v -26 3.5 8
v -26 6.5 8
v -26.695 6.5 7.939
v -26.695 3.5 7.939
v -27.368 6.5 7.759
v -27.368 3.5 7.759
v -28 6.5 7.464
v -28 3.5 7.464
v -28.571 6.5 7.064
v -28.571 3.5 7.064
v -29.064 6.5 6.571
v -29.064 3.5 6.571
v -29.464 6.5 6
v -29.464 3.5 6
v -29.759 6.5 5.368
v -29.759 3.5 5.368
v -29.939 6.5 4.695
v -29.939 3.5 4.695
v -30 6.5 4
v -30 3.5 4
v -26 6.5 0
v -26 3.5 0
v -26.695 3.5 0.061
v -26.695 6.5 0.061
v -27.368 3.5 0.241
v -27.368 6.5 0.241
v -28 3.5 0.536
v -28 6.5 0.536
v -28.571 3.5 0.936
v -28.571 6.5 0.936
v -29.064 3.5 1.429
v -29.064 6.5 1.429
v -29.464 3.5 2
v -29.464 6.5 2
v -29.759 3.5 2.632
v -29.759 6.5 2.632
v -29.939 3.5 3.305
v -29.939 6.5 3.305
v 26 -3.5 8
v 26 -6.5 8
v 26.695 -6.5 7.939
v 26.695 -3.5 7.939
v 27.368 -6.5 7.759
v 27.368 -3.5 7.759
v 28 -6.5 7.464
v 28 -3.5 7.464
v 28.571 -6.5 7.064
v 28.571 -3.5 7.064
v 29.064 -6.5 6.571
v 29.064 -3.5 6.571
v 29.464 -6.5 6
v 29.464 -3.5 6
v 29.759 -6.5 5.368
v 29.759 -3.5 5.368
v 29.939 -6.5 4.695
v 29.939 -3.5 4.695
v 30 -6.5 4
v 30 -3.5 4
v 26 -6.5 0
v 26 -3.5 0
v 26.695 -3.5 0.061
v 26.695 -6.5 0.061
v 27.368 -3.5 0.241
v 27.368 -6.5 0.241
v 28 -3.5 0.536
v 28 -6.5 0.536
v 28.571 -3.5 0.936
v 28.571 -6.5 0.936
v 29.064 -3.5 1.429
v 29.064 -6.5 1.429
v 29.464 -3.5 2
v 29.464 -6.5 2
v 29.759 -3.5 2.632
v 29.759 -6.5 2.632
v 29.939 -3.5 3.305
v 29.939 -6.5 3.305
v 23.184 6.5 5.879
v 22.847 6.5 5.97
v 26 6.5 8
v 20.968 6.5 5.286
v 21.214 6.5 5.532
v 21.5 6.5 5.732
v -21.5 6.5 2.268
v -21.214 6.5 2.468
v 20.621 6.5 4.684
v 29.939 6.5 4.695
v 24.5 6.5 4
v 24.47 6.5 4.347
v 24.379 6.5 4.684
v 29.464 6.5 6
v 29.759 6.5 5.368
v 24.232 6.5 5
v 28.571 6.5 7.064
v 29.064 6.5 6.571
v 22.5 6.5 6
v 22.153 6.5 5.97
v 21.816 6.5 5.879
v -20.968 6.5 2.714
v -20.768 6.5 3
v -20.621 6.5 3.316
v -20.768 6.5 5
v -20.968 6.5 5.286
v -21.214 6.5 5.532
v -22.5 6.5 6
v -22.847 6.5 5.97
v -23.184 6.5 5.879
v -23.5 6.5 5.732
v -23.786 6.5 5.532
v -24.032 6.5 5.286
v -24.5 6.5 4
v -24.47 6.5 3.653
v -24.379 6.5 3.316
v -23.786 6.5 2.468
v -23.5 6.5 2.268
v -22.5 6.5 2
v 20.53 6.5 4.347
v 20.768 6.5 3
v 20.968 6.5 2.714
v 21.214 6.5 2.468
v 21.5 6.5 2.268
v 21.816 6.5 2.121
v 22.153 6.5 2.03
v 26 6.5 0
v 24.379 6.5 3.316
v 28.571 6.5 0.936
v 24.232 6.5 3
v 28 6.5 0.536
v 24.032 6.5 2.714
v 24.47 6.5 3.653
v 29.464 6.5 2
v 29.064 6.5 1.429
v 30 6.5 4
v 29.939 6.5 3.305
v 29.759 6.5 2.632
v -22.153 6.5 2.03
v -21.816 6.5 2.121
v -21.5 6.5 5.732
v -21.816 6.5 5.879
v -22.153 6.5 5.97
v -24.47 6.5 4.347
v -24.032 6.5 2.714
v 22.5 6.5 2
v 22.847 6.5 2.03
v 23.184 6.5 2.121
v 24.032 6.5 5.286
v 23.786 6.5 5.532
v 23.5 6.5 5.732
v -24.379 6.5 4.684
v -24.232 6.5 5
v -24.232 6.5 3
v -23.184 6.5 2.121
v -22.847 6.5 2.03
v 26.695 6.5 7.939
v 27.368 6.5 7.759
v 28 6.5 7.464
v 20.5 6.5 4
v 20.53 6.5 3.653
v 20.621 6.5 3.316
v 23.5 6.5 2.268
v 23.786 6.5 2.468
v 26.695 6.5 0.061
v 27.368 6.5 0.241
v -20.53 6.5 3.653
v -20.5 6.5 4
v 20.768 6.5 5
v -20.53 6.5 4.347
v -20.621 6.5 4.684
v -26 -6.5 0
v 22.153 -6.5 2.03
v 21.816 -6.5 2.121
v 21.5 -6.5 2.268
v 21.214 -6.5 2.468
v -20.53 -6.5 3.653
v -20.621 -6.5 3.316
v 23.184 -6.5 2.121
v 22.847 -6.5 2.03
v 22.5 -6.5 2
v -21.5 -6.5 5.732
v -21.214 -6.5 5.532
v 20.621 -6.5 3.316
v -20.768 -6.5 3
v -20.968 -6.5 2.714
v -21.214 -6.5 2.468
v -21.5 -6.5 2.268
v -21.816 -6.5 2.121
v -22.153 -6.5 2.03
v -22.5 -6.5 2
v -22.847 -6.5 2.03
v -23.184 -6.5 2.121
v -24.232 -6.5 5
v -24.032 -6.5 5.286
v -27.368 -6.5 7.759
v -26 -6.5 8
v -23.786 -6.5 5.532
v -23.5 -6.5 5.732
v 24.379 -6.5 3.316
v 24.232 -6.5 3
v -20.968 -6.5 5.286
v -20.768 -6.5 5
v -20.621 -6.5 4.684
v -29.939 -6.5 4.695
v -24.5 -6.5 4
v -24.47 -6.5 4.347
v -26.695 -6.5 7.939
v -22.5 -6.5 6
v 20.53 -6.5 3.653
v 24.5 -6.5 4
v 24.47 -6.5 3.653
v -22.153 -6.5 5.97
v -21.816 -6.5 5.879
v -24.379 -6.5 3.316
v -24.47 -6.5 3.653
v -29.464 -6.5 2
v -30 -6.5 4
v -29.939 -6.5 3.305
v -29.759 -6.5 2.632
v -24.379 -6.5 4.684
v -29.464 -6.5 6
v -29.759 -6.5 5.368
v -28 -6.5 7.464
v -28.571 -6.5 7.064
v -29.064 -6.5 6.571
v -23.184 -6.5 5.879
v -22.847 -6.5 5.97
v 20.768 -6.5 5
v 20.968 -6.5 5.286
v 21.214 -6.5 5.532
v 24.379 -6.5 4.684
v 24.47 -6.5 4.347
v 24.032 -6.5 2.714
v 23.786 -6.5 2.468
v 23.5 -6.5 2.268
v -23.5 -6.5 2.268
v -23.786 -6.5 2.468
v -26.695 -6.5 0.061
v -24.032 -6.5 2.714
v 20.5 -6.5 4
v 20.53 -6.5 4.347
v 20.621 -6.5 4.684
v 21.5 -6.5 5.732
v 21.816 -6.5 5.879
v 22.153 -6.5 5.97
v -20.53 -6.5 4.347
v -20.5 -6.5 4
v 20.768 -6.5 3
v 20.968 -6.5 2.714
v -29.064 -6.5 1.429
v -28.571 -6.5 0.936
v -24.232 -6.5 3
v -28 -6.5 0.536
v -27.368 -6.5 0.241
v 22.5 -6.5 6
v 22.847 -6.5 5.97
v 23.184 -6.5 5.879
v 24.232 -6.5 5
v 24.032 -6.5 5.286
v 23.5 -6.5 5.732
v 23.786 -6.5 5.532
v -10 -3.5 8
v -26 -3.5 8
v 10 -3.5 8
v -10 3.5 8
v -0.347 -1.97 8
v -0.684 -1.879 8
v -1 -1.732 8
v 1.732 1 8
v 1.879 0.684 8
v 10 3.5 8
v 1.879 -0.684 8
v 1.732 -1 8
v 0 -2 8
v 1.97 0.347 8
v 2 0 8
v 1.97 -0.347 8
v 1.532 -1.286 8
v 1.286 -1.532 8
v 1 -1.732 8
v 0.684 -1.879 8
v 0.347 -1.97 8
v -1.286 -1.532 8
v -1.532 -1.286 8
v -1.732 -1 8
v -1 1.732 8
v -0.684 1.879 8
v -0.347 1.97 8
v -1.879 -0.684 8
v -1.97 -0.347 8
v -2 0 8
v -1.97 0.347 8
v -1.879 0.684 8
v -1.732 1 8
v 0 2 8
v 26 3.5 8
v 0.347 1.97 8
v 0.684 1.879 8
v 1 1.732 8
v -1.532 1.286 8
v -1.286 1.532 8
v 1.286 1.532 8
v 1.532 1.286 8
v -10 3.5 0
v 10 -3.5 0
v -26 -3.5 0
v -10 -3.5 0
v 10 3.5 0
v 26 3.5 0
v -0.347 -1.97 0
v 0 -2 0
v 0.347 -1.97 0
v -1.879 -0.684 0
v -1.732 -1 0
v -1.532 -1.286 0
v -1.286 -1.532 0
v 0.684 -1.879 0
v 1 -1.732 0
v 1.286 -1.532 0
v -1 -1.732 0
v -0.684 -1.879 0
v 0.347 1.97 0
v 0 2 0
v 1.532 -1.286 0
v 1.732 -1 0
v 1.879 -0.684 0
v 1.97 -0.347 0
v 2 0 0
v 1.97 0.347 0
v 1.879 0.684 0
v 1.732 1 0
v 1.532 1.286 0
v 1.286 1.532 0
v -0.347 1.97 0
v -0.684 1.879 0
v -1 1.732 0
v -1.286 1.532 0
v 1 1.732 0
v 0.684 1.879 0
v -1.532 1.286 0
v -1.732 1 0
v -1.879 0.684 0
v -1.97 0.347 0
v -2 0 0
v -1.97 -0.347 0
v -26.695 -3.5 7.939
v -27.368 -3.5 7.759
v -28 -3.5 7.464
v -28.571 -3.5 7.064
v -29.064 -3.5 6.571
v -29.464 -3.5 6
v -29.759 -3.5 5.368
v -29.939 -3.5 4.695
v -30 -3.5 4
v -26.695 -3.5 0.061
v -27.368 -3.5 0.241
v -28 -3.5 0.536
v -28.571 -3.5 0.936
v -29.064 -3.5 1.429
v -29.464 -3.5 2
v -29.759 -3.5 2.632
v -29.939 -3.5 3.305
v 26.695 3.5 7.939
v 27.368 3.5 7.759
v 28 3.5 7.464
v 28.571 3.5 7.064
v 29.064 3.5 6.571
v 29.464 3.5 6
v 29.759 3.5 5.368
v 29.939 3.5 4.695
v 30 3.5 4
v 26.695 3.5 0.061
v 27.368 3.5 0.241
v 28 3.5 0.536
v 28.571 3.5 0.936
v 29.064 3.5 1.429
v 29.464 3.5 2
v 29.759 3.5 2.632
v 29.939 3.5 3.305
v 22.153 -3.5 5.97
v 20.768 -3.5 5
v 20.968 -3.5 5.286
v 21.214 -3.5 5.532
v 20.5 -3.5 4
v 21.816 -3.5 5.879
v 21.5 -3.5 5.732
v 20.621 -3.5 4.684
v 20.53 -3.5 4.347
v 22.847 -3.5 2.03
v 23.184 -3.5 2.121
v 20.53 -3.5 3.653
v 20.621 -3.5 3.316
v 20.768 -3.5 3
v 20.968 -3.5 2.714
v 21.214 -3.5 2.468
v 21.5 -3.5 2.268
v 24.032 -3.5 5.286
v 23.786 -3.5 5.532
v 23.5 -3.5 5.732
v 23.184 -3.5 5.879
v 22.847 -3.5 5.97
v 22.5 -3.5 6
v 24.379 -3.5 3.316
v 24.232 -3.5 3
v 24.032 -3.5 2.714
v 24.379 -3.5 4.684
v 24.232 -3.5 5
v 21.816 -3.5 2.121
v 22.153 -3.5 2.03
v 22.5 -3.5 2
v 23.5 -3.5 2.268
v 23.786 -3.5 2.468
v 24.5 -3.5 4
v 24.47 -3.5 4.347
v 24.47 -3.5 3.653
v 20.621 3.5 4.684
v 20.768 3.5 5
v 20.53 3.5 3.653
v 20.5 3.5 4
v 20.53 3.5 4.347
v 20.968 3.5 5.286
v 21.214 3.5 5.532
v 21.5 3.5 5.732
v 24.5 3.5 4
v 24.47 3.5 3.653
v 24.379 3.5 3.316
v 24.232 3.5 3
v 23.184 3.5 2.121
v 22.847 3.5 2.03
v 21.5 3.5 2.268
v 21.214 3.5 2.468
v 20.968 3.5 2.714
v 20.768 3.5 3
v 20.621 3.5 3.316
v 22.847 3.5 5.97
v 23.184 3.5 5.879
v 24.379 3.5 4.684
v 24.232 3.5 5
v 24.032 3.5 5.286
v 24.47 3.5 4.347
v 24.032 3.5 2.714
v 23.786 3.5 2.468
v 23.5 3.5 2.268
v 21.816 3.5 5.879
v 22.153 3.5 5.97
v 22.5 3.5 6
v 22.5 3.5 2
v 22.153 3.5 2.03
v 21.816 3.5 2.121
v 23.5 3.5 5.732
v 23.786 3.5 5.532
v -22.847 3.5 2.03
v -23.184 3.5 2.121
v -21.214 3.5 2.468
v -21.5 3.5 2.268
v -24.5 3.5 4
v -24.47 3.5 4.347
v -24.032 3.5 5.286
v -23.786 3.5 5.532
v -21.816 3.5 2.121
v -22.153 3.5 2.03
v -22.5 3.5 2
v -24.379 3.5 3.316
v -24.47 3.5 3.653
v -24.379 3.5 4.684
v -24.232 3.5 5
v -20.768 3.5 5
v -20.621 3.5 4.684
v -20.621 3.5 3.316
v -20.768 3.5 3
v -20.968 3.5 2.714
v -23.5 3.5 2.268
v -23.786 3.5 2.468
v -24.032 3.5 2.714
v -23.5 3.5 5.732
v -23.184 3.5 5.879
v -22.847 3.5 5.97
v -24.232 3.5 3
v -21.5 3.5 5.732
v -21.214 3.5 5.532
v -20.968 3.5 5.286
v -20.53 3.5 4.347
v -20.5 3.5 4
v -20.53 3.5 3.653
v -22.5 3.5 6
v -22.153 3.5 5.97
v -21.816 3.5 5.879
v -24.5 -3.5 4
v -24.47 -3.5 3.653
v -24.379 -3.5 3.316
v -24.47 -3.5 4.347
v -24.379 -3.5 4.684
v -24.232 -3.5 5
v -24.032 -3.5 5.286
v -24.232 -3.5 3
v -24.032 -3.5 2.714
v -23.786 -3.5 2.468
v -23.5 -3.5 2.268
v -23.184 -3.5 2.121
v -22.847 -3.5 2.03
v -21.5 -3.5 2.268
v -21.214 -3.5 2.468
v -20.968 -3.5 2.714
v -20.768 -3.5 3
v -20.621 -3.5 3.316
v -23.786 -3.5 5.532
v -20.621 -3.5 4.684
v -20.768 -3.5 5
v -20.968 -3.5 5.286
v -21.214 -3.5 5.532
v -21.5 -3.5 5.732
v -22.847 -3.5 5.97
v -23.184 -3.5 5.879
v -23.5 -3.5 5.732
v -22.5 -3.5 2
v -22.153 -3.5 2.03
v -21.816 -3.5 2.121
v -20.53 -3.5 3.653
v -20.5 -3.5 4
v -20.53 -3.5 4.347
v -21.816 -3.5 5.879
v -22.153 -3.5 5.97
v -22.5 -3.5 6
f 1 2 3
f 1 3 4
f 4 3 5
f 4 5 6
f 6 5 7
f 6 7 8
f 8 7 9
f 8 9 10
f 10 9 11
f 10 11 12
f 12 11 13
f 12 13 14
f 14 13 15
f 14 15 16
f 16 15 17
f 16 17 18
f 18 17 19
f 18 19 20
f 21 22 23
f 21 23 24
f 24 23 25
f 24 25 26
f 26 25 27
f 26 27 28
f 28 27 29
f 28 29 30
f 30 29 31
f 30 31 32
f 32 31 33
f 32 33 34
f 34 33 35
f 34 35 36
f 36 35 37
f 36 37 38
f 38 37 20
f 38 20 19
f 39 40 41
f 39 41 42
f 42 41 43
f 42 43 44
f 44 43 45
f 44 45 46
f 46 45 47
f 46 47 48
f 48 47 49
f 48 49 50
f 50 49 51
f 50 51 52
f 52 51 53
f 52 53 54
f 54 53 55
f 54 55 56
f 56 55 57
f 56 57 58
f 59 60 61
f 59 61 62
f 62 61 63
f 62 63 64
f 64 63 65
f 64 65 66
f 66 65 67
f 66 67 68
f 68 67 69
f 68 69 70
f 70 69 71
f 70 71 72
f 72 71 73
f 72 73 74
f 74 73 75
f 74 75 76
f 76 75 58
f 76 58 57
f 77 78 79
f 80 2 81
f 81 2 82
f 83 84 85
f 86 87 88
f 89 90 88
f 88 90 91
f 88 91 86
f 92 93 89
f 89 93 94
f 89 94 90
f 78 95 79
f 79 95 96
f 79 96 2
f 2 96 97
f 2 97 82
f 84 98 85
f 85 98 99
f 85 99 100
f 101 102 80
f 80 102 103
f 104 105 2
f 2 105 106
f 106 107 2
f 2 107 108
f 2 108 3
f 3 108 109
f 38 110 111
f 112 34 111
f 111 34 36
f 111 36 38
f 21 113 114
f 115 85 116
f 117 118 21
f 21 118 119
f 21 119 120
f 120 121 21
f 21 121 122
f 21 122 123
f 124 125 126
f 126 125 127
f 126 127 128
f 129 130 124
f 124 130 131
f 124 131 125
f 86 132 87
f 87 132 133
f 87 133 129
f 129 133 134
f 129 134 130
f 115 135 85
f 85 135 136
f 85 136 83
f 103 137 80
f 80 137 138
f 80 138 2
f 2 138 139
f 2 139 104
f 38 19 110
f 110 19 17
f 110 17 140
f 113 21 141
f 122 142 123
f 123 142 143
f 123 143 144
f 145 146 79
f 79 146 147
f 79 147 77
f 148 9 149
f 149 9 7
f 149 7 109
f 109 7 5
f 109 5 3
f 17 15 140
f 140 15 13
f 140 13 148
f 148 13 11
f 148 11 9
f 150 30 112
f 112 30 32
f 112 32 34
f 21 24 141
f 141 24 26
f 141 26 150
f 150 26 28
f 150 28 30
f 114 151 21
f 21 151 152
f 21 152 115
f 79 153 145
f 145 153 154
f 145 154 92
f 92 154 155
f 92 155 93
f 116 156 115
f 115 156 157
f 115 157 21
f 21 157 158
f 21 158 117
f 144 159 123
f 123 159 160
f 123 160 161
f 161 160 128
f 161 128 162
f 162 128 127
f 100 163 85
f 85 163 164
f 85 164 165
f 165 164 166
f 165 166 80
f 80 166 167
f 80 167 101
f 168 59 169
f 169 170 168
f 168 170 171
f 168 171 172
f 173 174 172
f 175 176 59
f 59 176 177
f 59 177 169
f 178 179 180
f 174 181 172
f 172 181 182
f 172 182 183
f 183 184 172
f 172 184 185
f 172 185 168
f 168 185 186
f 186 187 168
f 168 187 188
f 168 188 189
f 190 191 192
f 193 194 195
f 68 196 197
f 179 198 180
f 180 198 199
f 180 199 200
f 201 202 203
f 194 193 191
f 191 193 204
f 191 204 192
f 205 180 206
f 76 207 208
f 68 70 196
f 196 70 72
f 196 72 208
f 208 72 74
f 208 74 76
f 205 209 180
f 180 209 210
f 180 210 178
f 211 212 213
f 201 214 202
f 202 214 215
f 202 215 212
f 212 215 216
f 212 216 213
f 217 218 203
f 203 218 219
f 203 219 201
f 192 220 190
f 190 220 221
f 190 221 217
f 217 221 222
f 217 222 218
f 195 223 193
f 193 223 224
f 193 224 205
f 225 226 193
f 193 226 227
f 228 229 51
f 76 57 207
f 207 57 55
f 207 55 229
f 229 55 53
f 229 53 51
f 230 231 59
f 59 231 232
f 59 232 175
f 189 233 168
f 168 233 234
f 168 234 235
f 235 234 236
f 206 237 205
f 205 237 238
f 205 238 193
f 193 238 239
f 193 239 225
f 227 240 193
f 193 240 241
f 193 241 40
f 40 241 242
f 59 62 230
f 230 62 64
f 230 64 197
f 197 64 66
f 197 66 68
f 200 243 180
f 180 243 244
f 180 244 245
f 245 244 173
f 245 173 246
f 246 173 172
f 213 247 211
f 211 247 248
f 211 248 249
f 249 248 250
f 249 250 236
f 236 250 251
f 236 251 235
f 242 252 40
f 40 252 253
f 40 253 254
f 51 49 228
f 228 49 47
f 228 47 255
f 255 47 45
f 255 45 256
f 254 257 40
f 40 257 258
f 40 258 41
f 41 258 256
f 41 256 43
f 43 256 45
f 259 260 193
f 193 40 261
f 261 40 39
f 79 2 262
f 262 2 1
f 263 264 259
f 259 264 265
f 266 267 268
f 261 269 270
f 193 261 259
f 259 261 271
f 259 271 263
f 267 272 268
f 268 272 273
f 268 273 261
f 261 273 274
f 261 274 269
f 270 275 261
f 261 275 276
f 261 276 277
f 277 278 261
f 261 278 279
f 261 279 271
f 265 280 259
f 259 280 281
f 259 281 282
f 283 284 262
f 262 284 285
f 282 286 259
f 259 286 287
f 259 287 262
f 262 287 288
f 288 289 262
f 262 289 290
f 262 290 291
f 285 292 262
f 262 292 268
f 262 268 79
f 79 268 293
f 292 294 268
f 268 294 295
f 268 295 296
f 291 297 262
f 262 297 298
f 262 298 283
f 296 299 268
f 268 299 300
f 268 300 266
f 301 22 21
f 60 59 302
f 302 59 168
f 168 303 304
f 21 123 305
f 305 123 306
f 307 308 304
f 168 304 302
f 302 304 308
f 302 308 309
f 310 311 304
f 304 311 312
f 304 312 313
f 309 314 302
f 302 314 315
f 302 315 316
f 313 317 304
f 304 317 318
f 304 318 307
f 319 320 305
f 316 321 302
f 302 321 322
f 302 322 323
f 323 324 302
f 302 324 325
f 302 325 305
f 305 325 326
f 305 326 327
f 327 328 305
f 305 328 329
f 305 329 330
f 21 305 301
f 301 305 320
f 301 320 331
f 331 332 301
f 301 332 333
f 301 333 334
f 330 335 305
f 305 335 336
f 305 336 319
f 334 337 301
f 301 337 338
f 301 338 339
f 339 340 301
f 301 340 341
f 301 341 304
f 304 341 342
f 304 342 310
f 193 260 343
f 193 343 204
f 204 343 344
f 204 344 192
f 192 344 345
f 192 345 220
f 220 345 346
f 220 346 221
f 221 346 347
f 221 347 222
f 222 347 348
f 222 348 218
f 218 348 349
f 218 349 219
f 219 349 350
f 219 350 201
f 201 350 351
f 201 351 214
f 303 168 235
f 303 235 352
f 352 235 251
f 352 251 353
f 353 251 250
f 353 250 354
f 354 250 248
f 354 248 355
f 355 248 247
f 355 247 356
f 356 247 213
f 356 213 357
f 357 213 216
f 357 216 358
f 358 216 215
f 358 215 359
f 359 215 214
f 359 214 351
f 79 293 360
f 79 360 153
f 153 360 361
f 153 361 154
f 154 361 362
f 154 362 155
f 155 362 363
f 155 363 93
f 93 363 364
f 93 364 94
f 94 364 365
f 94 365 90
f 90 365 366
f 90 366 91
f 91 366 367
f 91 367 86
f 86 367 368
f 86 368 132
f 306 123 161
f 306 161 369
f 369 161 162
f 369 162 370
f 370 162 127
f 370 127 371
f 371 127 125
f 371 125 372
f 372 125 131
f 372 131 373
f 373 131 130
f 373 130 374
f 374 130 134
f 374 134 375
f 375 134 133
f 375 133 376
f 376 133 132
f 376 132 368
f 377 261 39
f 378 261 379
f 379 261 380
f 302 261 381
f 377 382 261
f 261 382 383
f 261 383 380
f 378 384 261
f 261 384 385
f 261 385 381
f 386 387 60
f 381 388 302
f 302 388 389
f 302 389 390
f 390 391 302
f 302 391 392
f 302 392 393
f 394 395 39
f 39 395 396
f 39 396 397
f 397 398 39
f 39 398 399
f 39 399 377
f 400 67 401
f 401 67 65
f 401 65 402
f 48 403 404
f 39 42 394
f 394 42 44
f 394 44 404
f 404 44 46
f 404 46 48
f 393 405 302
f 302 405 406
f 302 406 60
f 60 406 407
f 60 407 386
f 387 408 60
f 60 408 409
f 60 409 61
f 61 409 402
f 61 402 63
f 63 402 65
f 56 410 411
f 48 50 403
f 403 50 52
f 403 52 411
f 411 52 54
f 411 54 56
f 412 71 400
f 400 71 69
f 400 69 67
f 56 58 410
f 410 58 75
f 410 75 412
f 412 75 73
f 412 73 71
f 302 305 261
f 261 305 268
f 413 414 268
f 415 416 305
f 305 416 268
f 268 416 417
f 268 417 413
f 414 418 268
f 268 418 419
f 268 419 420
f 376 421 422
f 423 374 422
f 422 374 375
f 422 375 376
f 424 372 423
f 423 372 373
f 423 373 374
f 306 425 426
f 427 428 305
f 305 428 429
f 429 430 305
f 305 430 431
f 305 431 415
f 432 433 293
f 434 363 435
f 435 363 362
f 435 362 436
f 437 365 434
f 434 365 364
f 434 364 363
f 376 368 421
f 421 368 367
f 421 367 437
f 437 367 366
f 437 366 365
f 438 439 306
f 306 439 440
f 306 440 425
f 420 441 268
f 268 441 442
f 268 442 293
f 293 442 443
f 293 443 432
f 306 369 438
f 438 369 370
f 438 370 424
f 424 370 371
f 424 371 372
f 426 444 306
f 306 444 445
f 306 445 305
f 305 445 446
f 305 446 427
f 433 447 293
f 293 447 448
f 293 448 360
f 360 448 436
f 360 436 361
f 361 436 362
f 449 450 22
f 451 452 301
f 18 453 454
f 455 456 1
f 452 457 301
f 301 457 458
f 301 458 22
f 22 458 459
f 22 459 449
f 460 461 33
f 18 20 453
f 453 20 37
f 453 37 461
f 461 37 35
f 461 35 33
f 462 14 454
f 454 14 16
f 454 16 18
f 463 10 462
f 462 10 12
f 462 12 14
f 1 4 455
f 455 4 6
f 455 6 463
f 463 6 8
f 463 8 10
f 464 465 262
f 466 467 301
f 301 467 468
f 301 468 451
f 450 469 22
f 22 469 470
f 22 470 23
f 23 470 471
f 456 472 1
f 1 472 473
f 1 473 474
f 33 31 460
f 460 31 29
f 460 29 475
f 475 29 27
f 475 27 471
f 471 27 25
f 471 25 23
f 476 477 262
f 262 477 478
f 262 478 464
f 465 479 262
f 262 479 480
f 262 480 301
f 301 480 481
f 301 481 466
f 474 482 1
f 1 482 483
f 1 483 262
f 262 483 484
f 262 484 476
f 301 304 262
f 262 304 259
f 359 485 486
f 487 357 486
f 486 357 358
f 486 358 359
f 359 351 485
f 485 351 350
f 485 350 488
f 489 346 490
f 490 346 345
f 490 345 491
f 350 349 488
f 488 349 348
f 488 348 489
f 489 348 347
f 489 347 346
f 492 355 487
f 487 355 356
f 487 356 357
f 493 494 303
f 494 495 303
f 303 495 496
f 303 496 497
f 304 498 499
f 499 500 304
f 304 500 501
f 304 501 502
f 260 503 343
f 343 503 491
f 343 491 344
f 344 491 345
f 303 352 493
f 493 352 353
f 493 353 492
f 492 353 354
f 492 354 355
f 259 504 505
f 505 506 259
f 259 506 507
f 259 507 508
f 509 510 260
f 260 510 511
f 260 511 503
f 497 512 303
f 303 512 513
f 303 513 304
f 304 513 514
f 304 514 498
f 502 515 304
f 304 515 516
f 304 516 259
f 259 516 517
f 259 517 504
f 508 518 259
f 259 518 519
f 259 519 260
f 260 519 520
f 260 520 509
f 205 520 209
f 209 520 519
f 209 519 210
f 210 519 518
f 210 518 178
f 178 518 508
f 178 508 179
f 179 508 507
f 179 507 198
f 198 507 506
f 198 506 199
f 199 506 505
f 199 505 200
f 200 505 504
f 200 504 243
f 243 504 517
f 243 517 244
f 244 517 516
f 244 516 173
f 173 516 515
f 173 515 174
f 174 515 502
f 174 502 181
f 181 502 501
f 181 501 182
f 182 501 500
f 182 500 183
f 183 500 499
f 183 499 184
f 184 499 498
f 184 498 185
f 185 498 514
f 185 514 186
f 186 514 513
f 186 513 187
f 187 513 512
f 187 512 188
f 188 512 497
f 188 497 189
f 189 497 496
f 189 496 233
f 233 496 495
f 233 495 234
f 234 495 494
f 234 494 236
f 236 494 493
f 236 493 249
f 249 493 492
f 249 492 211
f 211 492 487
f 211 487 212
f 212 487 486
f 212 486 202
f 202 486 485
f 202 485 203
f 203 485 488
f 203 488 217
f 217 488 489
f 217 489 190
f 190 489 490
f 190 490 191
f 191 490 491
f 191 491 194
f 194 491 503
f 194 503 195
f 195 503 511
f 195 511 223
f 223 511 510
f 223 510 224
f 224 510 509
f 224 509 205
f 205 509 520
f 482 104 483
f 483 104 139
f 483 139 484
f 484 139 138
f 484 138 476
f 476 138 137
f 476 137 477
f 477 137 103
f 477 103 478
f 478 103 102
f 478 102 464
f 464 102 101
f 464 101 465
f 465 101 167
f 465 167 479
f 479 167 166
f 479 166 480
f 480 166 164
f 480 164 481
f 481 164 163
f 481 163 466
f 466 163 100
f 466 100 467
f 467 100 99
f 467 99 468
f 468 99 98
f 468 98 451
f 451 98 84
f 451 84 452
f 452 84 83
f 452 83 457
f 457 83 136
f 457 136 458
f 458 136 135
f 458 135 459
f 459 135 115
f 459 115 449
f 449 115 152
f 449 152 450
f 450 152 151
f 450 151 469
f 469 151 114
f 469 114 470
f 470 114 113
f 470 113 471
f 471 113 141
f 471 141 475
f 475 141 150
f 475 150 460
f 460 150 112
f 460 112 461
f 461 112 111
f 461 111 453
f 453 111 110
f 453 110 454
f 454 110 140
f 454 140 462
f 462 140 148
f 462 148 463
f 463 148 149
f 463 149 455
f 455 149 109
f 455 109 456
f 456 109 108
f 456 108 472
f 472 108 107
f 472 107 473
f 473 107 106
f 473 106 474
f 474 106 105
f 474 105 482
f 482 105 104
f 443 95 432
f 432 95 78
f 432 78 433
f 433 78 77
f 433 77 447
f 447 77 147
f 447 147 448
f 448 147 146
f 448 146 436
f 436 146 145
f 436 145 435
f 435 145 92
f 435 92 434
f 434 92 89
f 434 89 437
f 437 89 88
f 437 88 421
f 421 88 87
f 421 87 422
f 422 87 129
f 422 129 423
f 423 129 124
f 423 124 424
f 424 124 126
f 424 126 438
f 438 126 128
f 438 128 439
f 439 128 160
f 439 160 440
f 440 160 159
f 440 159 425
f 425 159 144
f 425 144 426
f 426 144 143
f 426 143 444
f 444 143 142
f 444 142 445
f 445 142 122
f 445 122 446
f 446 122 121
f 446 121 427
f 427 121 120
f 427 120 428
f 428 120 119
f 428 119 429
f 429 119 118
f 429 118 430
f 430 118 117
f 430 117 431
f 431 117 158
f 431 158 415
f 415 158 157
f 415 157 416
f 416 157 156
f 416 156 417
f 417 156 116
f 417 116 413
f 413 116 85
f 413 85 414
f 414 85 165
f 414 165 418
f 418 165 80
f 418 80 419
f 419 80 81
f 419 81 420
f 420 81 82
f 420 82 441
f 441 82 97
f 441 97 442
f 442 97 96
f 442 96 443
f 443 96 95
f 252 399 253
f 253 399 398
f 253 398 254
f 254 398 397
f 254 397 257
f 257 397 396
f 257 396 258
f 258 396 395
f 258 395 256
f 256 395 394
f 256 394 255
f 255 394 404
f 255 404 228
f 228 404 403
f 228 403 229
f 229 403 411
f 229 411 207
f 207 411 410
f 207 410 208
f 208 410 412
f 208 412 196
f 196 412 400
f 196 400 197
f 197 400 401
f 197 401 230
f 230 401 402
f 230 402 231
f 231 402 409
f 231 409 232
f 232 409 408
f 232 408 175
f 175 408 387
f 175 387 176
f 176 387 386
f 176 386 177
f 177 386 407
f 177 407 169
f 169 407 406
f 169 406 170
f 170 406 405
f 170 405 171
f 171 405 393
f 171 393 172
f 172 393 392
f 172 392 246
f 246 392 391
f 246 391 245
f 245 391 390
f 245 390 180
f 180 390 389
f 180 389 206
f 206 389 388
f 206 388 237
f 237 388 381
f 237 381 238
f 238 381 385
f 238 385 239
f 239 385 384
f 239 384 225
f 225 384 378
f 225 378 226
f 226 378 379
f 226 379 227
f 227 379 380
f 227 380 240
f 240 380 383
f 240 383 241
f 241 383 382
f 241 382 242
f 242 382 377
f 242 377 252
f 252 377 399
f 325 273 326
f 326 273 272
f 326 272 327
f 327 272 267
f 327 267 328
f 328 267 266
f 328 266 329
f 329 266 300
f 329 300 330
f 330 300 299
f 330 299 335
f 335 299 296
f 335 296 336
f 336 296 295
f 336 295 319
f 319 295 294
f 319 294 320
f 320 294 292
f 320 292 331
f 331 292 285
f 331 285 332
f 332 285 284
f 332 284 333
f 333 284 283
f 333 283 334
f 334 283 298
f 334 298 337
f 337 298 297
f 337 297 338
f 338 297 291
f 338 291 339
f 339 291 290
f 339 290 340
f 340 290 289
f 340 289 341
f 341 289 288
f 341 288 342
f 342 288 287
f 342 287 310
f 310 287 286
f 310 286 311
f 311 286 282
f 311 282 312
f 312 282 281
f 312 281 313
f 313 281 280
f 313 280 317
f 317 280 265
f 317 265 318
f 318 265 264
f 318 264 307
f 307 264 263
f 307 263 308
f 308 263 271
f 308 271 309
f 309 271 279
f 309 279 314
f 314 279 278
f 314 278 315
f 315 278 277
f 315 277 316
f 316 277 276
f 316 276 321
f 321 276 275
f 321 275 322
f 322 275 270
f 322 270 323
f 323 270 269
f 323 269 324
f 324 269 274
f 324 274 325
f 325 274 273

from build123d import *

# Parameters (mm, degrees)
SKETCH1_W           = 60
SKETCH1_H           = 13
BOSS_EXTRUDE1_DEPTH = 8
FILLET1_R           = 4
SKETCH2_W           = 20
SKETCH2_H           = 7
CUT_EXTRUDE1_DEPTH  = 32.721443851
SKETCH3_R           = 2
CUT_EXTRUDE2_DEPTH  = 34.660065359
SKETCH4_R           = 2
CUT_EXTRUDE3_DEPTH  = 32.721443851


with BuildPart() as part:
    # Sketch1 → Boss-Extrude1 (new body)
    with BuildSketch(Plane.XY):
        Rectangle(SKETCH1_W, SKETCH1_H)
    extrude(amount=BOSS_EXTRUDE1_DEPTH)

    # Fillet1
    fillet1_edges = [part.edges().sort_by_distance(p)[0] for p in [
        (-30, 0, 0),
        (30, 0, 0),
        (30, 0, 8),
        (-30, 0, 8),
    ]]
    fillet(fillet1_edges, radius=FILLET1_R - 0.0001)  # a hair under: the kernel refuses the full size

    # Sketch2 → Cut-Extrude1 (cut, through all)
    with BuildSketch(Plane.XY.offset(8)):
        with Locations((-20, 0)):
            Rectangle(SKETCH2_W, SKETCH2_H)
        with Locations((20, 0)):
            Rectangle(SKETCH2_W, SKETCH2_H)
    extrude(amount=-CUT_EXTRUDE1_DEPTH, mode=Mode.SUBTRACT)

    # Sketch3 → Cut-Extrude2 (cut, through all)
    with BuildSketch(Plane(origin=(0, 6.5, 0), x_dir=(1, 0, 0), z_dir=(0, 1, 0))):
        with Locations(Location((-22.5, -4, 0), (0, 0, 270))):
            Circle(SKETCH3_R)
        with Locations(Location((22.5, -4, 0), (0, 0, 270))):
            Circle(SKETCH3_R)
    extrude(amount=-CUT_EXTRUDE2_DEPTH, mode=Mode.SUBTRACT)

    # Sketch4 → Cut-Extrude3 (cut, through all)
    with BuildSketch(Plane.XY.offset(8)):
        Circle(SKETCH4_R)
    extrude(amount=-CUT_EXTRUDE3_DEPTH, mode=Mode.SUBTRACT)


solid = part.part
